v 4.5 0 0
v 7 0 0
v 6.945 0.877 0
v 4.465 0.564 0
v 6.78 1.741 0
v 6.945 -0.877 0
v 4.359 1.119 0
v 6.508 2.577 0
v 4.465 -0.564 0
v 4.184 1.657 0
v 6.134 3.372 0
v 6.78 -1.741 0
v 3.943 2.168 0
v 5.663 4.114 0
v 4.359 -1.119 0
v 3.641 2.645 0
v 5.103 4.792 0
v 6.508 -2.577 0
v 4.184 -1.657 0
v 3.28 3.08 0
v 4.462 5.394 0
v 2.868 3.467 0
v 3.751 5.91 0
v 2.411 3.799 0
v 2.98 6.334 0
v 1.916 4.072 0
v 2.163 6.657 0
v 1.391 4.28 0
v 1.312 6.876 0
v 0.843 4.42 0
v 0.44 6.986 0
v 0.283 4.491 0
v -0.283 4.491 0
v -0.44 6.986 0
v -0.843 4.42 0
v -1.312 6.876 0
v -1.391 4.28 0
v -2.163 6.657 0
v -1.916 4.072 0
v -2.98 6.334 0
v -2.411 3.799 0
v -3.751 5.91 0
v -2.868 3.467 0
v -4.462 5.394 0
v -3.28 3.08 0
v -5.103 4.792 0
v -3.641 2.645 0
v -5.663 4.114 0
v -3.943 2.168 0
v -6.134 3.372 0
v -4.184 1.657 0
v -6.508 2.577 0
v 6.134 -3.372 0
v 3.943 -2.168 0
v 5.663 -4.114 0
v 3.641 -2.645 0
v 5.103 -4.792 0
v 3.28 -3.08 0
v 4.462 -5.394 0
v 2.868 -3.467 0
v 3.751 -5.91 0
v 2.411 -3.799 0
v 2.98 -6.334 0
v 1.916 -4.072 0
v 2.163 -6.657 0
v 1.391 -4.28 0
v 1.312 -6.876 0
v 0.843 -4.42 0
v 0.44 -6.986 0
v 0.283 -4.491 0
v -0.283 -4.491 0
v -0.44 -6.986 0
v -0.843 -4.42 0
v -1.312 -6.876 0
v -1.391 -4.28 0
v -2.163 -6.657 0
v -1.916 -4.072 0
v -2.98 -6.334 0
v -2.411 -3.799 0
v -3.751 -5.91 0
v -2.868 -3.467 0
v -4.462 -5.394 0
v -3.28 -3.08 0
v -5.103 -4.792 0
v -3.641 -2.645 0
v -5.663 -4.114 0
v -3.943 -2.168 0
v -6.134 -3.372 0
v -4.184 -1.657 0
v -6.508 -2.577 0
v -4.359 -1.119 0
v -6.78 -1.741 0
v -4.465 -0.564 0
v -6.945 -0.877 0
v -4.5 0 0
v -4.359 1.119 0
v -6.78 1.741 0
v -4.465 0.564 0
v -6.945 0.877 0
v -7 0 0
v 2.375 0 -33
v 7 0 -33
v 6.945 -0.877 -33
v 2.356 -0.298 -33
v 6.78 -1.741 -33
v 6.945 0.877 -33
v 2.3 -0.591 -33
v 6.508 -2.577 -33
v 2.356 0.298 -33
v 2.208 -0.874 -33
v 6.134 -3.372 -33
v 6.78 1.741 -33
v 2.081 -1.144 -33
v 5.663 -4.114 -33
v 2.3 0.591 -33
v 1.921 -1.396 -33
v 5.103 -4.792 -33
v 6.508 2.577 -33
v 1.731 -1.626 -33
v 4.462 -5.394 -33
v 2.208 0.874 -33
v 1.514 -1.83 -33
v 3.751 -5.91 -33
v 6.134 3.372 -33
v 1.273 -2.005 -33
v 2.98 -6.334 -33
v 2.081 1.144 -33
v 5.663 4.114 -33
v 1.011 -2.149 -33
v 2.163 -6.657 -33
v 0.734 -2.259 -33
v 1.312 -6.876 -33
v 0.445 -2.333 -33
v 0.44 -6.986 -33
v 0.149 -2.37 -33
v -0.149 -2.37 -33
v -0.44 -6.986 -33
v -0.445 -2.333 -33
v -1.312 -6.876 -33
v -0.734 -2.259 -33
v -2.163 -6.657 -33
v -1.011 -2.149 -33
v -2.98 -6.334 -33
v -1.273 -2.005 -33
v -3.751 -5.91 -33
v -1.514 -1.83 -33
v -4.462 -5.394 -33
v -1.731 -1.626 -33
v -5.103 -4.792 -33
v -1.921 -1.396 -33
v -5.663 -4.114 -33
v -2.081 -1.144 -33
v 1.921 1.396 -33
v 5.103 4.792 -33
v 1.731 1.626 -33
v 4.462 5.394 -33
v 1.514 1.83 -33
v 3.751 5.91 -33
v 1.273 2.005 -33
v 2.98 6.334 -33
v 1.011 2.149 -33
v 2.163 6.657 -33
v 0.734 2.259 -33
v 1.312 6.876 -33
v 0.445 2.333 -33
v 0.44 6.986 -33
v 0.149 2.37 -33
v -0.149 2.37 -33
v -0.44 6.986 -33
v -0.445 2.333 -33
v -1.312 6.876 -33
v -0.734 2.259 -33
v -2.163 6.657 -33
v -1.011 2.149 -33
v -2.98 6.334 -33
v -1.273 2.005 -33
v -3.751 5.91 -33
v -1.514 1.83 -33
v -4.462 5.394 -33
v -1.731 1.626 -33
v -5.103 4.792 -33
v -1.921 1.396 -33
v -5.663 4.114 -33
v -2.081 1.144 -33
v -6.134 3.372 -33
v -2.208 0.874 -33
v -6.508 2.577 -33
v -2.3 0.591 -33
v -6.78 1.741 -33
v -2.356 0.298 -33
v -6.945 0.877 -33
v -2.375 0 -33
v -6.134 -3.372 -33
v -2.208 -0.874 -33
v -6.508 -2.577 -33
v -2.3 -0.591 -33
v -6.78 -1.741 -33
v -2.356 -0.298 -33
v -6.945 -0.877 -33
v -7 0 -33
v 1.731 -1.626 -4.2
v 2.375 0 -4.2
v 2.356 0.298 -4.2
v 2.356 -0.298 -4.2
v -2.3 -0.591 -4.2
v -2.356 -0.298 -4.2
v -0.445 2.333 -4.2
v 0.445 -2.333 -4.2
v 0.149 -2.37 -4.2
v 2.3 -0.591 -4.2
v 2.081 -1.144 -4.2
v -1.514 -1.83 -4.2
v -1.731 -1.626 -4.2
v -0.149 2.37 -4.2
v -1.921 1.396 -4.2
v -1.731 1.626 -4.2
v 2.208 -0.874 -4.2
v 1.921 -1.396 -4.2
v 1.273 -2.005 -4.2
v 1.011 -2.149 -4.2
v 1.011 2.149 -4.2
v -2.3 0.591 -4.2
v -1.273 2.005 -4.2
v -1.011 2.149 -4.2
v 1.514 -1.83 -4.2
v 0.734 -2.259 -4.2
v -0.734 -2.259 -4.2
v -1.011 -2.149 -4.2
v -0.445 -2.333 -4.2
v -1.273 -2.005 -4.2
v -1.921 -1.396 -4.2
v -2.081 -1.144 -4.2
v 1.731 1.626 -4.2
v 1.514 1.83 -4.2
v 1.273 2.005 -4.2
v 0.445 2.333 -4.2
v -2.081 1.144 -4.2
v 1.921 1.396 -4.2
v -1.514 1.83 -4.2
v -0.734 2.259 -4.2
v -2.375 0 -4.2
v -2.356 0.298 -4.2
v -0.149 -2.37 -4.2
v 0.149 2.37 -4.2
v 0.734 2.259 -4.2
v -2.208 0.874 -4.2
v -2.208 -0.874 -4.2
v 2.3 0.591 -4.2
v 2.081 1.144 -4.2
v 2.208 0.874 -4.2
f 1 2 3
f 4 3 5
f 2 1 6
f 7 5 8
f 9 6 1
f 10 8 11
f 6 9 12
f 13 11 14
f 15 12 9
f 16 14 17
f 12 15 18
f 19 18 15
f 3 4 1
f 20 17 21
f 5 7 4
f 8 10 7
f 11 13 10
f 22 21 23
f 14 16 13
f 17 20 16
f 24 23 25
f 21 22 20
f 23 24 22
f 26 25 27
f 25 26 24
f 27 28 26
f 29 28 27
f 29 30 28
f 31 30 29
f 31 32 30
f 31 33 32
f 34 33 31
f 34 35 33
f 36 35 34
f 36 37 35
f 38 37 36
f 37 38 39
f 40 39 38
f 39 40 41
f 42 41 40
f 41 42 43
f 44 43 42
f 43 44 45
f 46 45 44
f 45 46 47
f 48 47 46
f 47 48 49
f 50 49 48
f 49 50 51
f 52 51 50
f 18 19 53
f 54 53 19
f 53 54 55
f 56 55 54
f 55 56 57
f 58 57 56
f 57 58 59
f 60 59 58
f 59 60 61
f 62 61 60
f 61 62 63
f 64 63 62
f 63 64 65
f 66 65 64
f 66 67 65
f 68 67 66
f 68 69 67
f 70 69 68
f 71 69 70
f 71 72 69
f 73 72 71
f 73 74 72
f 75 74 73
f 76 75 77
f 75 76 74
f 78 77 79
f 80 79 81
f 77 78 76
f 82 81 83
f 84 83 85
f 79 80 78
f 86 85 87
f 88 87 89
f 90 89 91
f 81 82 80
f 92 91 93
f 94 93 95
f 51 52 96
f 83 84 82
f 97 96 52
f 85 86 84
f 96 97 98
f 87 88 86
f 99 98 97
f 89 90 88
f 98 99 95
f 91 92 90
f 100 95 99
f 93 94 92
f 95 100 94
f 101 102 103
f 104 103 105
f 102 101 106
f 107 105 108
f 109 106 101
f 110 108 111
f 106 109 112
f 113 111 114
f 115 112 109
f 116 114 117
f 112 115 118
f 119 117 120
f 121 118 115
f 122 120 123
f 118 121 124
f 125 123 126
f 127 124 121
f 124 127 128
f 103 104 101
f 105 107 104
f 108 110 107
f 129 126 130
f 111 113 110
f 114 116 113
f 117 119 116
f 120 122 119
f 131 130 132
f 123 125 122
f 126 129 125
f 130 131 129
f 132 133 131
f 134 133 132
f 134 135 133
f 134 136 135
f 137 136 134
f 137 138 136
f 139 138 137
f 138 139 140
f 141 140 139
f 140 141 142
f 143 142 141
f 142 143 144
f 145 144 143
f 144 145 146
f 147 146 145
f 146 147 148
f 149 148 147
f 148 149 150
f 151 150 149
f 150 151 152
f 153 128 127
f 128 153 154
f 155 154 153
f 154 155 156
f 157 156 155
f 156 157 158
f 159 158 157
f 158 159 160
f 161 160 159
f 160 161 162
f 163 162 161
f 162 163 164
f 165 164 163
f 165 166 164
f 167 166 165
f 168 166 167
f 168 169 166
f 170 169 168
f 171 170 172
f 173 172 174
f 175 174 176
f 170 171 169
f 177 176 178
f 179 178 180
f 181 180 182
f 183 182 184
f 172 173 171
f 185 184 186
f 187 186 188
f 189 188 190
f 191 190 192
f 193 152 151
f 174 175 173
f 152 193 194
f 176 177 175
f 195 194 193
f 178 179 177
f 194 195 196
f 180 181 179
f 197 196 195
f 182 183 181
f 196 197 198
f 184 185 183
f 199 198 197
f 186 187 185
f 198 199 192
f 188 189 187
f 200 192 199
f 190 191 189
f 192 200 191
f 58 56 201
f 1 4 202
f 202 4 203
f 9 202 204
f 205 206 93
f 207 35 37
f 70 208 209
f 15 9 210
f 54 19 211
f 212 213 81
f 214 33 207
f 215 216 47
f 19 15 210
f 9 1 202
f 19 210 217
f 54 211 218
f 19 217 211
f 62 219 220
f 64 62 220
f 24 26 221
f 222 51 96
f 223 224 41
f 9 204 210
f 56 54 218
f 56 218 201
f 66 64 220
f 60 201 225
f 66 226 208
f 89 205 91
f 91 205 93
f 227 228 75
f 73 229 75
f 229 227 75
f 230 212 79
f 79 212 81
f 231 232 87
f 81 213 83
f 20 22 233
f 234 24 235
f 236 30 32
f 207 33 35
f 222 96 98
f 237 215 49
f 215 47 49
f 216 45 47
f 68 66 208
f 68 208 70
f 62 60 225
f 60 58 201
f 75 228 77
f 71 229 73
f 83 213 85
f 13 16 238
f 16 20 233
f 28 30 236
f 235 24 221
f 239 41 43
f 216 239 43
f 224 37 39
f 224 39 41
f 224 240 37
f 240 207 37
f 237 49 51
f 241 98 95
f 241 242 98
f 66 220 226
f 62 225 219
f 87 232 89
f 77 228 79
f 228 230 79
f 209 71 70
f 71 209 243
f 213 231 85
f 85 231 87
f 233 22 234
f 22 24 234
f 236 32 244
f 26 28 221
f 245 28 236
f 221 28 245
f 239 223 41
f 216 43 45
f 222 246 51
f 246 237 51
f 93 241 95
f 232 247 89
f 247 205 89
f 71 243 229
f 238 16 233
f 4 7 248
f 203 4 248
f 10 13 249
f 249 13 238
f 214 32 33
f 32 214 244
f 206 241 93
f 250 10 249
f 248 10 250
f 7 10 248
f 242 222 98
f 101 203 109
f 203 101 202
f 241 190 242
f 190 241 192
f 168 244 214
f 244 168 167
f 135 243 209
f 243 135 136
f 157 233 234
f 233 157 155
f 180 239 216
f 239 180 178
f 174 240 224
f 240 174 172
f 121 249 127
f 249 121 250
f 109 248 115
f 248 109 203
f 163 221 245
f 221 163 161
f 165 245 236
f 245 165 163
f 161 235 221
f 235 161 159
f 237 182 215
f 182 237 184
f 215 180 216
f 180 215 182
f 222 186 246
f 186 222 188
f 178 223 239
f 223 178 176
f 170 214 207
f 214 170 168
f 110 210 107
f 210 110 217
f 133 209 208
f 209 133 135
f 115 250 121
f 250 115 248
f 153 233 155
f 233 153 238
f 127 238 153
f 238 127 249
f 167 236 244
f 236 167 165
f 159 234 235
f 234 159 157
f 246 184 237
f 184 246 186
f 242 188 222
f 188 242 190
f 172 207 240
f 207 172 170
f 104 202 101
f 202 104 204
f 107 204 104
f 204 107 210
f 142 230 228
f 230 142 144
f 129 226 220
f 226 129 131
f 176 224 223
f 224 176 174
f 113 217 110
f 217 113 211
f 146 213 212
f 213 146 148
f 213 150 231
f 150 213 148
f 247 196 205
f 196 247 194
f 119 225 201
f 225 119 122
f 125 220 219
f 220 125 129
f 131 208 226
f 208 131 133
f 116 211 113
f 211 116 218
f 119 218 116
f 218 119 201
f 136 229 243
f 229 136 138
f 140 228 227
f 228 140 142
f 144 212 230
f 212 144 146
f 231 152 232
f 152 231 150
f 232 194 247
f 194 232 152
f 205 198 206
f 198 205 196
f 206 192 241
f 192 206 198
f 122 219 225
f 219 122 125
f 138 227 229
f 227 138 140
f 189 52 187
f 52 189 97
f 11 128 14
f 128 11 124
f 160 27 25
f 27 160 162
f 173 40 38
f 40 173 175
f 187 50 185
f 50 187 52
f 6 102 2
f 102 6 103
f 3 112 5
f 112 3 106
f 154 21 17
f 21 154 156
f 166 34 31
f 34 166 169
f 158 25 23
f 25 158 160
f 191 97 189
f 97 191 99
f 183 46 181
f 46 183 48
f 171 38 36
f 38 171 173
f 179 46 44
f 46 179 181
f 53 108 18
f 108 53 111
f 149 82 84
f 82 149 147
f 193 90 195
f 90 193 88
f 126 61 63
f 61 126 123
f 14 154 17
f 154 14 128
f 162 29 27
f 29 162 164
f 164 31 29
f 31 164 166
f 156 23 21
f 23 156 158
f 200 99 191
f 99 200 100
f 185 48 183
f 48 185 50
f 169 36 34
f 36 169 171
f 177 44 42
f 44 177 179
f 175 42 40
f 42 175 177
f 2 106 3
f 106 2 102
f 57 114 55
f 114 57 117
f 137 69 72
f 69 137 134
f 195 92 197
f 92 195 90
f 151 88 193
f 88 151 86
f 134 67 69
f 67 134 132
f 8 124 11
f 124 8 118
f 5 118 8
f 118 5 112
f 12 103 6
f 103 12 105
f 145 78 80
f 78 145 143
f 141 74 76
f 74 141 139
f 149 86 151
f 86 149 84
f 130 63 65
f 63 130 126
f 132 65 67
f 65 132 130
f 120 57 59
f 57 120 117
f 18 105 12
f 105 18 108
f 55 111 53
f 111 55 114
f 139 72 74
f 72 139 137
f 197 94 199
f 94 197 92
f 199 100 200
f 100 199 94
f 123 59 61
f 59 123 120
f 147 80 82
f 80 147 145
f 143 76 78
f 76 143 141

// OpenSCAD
$fn = 50;


difference() {
	union() {
		translate(v = [0, 0, -33.0000000000]) {
			cylinder(h = 33, r = 7.0000000000);
		}
	}
	union() {
		translate(v = [0, 0, 0]) {
			rotate(a = [0, 0, 0]) {
				difference() {
					union() {
						#translate(v = [0, 0, -33.0000000000]) {
							cylinder(h = 33, r = 2.2500000000);
						}
						#translate(v = [0, 0, -4.2000000000]) {
							cylinder(h = 4.2000000000, r = 7.0000000000, r1 = 2.3750000000, r2 = 4.5000000000);
						}
						#translate(v = [0, 0, -33.0000000000]) {
							cylinder(h = 33, r = 2.3750000000);
						}
						#translate(v = [0, 0, -33.0000000000]) {
							cylinder(h = 33, r = 2.2500000000);
						}
					}
					union();
				}
			}
		}
	}
}
